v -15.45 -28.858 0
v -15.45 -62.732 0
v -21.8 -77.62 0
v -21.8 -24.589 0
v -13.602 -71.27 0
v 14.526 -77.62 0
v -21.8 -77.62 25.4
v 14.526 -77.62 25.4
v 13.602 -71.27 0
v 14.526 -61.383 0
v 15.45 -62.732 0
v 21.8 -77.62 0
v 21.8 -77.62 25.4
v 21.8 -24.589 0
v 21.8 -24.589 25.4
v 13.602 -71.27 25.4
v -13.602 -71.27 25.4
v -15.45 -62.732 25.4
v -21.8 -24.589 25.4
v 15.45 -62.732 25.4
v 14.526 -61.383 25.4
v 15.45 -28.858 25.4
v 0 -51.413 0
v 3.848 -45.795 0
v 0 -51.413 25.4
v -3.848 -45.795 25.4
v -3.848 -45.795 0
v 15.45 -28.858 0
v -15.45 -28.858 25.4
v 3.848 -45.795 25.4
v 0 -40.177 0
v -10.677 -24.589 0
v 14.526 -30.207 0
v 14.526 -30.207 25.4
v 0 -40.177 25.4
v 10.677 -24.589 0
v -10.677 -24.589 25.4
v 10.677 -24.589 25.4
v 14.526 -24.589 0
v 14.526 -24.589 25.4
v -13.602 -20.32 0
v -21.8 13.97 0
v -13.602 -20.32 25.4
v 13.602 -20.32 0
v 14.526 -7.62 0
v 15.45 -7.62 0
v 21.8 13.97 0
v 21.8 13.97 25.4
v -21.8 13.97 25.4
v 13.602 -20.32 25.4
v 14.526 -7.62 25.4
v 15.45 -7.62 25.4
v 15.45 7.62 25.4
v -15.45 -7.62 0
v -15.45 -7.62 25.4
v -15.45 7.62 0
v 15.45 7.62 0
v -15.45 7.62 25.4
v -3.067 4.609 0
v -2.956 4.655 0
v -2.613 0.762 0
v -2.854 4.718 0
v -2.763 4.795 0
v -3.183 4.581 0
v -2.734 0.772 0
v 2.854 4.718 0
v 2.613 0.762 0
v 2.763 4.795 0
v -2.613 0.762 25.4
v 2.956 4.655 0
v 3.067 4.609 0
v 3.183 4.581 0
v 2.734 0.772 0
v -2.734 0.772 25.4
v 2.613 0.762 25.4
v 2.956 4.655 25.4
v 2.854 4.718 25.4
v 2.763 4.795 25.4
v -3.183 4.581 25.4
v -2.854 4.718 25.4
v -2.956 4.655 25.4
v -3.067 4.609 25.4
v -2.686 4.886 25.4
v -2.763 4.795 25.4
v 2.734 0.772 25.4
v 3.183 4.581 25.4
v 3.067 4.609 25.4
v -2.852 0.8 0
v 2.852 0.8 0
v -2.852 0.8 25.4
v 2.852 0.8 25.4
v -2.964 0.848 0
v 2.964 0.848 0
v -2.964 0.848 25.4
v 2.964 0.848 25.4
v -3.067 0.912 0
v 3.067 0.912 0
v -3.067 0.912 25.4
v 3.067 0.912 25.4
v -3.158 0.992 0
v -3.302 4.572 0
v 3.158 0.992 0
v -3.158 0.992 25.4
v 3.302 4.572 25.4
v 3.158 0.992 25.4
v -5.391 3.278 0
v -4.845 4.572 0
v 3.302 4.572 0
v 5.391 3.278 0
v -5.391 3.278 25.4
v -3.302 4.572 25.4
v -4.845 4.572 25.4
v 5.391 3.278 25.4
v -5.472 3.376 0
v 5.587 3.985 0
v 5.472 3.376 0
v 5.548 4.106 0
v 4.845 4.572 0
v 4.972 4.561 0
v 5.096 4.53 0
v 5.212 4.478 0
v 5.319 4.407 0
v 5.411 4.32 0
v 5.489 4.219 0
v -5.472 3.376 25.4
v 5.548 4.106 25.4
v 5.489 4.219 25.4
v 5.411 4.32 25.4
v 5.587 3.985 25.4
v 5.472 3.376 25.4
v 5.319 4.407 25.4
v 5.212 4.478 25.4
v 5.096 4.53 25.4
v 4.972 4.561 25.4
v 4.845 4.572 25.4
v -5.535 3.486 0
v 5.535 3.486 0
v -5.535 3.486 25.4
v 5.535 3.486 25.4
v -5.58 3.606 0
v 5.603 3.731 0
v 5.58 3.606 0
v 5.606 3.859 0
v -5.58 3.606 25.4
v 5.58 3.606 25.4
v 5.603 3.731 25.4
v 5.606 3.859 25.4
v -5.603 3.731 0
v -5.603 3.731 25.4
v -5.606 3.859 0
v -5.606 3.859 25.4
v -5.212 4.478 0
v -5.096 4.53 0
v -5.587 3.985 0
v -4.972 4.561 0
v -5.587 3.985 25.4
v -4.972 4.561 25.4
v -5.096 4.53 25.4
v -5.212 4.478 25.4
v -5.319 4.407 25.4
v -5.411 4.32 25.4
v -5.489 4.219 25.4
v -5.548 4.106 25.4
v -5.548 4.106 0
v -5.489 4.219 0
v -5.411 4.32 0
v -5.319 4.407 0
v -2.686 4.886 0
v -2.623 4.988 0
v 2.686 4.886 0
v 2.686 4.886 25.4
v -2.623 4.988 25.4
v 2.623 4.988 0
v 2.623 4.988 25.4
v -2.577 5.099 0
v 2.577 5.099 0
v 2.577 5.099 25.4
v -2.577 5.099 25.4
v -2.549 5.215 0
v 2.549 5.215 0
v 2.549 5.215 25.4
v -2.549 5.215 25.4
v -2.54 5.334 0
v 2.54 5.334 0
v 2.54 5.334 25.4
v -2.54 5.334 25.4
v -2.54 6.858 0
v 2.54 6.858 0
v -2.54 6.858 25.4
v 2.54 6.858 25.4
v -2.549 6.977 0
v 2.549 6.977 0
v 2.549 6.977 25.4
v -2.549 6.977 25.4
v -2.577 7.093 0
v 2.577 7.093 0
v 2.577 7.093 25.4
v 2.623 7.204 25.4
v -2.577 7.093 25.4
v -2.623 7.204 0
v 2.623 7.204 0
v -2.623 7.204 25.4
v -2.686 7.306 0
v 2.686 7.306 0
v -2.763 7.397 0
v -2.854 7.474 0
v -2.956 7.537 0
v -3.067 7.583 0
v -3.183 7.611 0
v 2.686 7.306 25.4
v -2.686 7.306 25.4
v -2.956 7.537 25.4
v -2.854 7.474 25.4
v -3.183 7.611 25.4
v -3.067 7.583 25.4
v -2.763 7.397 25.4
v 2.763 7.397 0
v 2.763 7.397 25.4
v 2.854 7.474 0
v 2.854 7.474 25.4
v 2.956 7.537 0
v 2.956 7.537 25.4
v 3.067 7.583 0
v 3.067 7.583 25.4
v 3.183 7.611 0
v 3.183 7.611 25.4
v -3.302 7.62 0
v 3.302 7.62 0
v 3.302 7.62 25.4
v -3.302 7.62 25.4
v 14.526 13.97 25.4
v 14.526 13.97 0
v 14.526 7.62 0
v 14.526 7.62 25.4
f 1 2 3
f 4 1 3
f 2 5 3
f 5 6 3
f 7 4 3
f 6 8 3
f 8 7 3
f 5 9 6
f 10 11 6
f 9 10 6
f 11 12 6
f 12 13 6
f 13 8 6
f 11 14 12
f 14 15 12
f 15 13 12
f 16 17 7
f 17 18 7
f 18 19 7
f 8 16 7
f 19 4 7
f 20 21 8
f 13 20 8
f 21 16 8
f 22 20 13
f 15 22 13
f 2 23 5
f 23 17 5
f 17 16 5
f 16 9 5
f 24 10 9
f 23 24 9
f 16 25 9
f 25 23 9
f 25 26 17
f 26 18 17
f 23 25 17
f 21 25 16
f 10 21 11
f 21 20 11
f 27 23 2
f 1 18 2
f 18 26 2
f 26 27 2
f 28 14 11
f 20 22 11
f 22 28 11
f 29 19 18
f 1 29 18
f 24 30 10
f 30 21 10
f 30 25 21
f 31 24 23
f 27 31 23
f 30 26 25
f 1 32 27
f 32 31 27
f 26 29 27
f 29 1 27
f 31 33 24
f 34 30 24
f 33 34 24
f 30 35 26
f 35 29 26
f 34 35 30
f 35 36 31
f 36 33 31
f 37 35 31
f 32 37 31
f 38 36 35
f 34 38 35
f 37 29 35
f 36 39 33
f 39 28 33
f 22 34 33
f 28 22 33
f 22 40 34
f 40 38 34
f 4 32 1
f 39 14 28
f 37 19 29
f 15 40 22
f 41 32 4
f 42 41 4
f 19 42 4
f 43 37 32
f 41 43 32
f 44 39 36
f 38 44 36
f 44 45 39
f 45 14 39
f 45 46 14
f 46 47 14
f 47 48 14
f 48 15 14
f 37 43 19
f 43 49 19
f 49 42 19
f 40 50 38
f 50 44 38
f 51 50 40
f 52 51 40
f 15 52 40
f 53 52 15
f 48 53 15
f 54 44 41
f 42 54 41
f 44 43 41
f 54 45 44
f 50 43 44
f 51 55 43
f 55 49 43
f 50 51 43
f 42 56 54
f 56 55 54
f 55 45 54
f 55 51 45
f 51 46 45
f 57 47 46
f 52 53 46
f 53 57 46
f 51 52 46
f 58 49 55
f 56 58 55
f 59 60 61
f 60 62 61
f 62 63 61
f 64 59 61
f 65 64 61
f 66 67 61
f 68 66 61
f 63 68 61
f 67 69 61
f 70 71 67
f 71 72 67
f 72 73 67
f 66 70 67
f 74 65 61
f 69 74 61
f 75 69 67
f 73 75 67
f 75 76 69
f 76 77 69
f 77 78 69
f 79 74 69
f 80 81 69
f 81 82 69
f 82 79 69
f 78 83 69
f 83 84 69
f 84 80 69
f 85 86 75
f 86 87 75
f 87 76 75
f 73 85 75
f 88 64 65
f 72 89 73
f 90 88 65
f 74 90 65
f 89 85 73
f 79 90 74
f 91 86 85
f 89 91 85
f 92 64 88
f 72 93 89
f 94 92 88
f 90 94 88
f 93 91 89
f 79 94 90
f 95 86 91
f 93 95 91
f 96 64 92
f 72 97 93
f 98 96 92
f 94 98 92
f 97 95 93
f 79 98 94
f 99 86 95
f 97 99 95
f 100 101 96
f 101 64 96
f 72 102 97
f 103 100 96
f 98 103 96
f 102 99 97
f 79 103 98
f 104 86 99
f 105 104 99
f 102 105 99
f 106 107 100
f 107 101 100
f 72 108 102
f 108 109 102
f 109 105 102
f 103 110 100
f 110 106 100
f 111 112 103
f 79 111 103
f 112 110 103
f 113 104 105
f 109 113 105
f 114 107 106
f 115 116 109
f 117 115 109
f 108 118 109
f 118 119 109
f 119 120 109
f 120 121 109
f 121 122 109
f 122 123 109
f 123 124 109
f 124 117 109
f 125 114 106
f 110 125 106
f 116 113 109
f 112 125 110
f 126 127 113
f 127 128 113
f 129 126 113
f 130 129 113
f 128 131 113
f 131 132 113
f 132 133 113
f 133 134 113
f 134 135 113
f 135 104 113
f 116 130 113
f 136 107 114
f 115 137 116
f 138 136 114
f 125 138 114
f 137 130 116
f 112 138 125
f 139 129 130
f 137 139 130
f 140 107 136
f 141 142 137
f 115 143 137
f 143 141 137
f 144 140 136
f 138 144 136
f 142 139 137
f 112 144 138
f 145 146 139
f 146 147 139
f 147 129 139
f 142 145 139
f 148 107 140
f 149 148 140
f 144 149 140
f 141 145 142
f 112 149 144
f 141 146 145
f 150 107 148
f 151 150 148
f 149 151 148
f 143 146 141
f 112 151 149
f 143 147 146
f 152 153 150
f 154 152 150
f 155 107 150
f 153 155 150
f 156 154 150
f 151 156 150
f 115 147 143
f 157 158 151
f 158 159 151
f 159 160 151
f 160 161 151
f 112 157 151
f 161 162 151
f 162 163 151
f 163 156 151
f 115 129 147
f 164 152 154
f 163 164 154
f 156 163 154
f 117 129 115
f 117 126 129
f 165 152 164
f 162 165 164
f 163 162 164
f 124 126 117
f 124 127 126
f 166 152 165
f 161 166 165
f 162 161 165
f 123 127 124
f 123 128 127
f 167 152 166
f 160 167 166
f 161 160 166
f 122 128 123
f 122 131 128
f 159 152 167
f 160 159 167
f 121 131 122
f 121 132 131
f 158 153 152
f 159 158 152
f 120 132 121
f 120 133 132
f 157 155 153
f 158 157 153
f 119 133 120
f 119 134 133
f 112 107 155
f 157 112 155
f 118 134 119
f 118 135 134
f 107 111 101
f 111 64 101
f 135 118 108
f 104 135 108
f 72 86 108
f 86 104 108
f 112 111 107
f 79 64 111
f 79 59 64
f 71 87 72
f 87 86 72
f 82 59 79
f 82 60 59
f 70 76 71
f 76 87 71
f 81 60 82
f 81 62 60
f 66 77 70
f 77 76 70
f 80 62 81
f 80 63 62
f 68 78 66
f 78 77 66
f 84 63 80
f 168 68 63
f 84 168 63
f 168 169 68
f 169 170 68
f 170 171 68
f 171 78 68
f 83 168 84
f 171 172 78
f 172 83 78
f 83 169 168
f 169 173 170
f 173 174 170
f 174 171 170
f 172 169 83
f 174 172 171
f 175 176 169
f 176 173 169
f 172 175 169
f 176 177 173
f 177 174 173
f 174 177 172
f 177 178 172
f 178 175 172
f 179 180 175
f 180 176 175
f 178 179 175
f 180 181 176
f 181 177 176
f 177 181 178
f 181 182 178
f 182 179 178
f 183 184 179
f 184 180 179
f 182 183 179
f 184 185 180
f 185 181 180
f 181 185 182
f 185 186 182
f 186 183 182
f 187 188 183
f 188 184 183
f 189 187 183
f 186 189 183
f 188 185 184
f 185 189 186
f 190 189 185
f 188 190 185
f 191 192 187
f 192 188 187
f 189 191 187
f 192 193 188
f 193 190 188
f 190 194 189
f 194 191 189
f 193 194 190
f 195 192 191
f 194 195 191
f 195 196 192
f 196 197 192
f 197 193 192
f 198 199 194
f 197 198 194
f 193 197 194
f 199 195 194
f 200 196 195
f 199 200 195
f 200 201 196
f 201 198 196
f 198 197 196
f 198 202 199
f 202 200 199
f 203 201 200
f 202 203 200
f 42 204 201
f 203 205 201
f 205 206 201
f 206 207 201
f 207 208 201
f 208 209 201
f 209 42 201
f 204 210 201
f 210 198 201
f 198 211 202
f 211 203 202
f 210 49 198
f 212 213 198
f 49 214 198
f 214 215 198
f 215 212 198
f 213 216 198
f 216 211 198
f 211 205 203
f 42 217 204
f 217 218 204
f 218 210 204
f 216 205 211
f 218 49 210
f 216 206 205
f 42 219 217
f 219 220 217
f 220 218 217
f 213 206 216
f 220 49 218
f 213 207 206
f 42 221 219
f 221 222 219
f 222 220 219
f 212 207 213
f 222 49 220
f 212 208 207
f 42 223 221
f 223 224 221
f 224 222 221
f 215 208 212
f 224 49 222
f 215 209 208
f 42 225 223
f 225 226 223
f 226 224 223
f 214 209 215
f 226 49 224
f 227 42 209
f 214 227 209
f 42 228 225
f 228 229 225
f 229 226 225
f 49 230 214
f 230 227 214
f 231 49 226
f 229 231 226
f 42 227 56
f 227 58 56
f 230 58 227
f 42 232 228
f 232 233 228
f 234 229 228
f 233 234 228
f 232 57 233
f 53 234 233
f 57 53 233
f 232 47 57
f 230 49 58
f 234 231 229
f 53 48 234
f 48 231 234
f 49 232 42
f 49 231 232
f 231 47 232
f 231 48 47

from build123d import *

# Parameters (mm, degrees)
BOSS_EXTRUDE1_DEPTH = 25.4
FILLET1_R           = 0.762


with BuildPart() as part:
    # Sketch1 → Boss-Extrude1 (new body)
    with BuildSketch(Plane.XY):
        Polygon((-21.799999961, -13.97), (-21.799999961, 13.97), (21.799999961, 13.97), (21.799999961, -13.97), (21.799999961, -77.619999954), (-21.799999961, -77.619999954), align=None)
        Polygon((-15.449999961, 7.62), (-2.54, 7.62), (-2.54, 4.572), (-6.6548, 4.572), (-2.933726616, 0.762), (2.933726616, 0.762), (6.6548, 4.572), (2.54, 4.572), (2.54, 7.62), (15.449999961, 7.62), (15.449999961, -7.62), (-15.449999961, -7.62), align=None, mode=Mode.SUBTRACT)
        Polygon((-13.601813914, -20.32), (0, -40.176776526), (13.601813914, -20.32), align=None, mode=Mode.SUBTRACT)
        Polygon((15.449999961, -28.858349607), (3.848460993, -45.794999977), (15.449999961, -62.731650347), align=None, mode=Mode.SUBTRACT)
        Polygon((-3.848460993, -45.794999977), (-15.449999961, -62.731650347), (-15.449999961, -28.858349607), align=None, mode=Mode.SUBTRACT)
        Polygon((0, -51.413223428), (-13.601813914, -71.269999954), (13.601813914, -71.269999954), align=None, mode=Mode.SUBTRACT)
    extrude(amount=BOSS_EXTRUDE1_DEPTH)

    # Fillet1
    fillet1_edges = [part.edges().sort_by_distance(p)[0] for p in [
        (2.54, 7.62, 12.7),
        (2.54, 4.572, 12.7),
        (6.6548, 4.572, 12.7),
        (2.933726616, 0.762, 12.7),
        (-2.933726616, 0.762, 12.7),
        (-6.6548, 4.572, 12.7),
        (-2.54, 4.572, 12.7),
        (-2.54, 7.62, 12.7),
    ]]
    fillet(fillet1_edges, radius=FILLET1_R)


solid = part.part
